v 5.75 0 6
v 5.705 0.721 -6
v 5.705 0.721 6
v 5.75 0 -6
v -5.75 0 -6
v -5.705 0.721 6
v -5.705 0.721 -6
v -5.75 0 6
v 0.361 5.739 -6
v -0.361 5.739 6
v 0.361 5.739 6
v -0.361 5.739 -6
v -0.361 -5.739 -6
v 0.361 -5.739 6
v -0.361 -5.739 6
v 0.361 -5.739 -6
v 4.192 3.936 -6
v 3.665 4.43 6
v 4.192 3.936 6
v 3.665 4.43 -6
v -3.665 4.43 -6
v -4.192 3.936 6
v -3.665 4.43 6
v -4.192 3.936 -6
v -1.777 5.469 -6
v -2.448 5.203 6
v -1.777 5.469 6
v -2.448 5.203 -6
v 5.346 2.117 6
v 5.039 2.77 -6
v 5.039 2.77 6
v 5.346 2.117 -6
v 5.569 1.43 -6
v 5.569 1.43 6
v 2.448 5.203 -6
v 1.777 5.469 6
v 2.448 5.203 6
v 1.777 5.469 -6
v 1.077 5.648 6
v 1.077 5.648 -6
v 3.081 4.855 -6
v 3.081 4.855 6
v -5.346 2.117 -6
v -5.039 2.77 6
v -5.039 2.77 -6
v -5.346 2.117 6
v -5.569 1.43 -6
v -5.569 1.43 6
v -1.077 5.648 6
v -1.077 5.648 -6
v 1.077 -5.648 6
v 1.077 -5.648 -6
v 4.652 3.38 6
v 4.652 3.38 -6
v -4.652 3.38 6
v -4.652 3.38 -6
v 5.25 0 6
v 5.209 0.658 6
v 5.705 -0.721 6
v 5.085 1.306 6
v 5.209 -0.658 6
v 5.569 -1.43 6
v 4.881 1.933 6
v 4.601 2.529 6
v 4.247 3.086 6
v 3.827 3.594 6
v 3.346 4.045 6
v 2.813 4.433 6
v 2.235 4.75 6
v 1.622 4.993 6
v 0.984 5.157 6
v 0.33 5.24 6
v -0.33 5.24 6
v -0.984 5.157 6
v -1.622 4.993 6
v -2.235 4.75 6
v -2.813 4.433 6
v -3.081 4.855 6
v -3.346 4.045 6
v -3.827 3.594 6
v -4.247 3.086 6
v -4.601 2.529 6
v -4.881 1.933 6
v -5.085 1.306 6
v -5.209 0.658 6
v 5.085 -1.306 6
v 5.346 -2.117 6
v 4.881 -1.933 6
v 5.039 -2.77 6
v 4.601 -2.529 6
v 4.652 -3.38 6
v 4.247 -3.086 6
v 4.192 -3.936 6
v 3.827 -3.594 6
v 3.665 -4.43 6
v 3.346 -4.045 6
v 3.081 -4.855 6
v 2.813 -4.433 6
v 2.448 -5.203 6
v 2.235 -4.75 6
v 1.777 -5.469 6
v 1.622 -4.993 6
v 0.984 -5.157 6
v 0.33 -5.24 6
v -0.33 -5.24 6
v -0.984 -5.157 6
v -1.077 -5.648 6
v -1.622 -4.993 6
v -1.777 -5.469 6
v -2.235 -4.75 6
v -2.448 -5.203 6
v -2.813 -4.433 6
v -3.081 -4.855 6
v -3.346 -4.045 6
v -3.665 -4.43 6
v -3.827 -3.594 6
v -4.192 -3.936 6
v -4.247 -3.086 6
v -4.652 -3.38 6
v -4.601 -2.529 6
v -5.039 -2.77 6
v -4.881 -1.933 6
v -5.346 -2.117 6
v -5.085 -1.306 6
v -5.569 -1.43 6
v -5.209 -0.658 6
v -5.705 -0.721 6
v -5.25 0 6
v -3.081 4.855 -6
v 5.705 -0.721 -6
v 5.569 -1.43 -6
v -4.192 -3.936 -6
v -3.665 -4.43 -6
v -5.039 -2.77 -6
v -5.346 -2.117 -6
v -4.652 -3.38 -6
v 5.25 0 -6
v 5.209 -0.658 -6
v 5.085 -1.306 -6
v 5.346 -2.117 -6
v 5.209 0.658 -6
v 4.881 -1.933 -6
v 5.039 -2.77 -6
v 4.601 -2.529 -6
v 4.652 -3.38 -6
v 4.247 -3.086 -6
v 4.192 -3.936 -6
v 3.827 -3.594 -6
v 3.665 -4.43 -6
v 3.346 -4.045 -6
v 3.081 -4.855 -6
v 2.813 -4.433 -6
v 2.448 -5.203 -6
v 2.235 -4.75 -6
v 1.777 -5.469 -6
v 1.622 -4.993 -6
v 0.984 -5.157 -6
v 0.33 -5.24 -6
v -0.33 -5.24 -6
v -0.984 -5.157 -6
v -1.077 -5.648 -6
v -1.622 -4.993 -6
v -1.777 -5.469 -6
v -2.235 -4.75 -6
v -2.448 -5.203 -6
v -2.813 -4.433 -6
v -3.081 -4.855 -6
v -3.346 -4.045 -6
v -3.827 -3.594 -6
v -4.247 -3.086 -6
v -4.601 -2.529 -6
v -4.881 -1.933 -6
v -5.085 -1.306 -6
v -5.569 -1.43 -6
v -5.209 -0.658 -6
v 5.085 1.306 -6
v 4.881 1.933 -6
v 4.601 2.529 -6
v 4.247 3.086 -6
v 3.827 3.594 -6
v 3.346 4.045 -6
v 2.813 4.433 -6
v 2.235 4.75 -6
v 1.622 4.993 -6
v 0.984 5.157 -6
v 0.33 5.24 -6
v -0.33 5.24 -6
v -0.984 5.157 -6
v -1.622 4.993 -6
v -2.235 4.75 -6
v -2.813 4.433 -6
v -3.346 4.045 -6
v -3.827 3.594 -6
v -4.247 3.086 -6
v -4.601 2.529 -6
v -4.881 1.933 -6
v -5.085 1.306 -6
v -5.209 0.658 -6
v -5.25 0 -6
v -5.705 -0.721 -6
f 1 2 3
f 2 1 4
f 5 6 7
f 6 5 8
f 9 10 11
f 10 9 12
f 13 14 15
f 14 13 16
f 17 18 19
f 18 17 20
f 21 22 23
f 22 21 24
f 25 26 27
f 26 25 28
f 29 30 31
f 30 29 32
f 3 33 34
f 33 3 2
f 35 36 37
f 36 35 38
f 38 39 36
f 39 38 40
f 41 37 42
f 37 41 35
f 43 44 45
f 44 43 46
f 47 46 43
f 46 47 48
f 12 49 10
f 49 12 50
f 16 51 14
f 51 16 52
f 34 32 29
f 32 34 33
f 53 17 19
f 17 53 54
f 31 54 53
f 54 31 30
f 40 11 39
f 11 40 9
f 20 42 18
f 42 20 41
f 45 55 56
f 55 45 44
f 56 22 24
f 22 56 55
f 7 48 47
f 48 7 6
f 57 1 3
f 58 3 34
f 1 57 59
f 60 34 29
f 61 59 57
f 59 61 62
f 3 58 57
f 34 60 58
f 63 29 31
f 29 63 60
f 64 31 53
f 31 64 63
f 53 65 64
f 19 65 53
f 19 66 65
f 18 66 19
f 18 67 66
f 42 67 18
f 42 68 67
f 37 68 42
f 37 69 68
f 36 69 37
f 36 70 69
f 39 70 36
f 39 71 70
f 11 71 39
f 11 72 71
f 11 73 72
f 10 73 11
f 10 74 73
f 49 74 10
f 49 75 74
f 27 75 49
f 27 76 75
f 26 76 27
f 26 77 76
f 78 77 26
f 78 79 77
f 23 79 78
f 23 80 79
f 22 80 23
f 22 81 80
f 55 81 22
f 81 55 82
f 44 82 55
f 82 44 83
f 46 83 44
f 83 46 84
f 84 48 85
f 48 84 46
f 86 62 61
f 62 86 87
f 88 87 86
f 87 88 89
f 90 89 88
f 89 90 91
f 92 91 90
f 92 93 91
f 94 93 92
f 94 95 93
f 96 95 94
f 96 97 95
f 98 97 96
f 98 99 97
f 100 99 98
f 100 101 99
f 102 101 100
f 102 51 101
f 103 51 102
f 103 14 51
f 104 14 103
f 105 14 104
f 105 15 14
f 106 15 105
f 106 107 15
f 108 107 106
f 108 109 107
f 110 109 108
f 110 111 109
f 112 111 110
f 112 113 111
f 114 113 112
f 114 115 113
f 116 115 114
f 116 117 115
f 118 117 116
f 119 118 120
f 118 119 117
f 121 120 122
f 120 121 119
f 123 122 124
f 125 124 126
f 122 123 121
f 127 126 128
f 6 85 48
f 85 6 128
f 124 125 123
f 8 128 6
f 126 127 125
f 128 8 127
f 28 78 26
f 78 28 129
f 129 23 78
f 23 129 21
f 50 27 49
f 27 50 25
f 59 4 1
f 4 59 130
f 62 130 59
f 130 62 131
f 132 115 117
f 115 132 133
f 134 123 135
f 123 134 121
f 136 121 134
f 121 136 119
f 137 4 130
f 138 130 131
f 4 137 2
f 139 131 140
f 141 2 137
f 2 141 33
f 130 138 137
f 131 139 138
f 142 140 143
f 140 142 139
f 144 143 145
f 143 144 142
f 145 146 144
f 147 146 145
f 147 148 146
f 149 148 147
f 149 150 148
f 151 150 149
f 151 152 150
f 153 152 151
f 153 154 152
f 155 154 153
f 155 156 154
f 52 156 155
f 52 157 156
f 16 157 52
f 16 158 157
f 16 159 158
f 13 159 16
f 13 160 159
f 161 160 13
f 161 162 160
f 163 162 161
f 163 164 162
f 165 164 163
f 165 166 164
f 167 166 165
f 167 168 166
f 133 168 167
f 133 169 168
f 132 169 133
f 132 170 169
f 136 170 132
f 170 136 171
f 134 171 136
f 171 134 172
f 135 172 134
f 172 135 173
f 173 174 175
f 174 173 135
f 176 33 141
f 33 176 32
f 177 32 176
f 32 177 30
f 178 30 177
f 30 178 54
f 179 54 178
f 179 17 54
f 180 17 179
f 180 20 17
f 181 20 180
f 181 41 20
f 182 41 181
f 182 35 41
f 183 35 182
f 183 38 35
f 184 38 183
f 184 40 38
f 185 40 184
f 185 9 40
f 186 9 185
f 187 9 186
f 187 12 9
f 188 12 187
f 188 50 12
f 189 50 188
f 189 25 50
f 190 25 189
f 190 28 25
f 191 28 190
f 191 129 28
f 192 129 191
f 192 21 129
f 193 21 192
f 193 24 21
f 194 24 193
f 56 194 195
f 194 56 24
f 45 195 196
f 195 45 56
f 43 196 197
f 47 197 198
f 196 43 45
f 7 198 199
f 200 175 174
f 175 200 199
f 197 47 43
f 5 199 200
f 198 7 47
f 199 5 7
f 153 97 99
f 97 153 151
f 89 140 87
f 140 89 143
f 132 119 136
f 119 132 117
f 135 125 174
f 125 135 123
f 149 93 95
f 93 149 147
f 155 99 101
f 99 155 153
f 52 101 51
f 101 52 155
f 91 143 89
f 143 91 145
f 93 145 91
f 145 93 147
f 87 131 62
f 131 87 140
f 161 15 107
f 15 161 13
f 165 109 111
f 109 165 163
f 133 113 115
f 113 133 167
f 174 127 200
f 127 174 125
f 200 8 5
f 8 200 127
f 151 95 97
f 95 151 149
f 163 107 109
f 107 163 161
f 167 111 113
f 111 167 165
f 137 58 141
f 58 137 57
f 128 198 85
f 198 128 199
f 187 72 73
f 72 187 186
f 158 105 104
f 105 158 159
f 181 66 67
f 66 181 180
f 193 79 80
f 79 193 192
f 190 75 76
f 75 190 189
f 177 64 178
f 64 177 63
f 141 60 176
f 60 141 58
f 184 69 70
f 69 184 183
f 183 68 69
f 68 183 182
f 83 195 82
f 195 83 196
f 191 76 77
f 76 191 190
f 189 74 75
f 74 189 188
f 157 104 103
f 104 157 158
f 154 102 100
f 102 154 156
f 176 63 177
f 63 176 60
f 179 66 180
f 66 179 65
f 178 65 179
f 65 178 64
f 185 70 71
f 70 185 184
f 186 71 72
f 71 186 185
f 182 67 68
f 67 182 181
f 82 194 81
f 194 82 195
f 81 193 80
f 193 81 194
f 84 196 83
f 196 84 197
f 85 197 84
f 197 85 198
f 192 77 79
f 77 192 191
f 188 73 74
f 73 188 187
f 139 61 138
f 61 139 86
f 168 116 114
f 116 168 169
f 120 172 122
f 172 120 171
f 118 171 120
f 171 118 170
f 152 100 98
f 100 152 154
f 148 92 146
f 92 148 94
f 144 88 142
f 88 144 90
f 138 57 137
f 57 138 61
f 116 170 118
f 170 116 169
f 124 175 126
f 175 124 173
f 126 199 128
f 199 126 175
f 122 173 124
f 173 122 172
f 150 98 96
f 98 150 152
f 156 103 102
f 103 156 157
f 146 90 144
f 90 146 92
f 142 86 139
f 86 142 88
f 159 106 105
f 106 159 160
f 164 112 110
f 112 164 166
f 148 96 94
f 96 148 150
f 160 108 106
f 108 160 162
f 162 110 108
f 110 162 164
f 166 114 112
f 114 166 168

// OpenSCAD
$fn = 50;


difference() {
	union() {
		translate(v = [0, 0, -6.0000000000]) {
			cylinder(h = 12, r = 5.7500000000);
		}
	}
	union() {
		translate(v = [0, 0, -100.0000000000]) {
			cylinder(h = 200, r = 5.2500000000);
		}
	}
}
